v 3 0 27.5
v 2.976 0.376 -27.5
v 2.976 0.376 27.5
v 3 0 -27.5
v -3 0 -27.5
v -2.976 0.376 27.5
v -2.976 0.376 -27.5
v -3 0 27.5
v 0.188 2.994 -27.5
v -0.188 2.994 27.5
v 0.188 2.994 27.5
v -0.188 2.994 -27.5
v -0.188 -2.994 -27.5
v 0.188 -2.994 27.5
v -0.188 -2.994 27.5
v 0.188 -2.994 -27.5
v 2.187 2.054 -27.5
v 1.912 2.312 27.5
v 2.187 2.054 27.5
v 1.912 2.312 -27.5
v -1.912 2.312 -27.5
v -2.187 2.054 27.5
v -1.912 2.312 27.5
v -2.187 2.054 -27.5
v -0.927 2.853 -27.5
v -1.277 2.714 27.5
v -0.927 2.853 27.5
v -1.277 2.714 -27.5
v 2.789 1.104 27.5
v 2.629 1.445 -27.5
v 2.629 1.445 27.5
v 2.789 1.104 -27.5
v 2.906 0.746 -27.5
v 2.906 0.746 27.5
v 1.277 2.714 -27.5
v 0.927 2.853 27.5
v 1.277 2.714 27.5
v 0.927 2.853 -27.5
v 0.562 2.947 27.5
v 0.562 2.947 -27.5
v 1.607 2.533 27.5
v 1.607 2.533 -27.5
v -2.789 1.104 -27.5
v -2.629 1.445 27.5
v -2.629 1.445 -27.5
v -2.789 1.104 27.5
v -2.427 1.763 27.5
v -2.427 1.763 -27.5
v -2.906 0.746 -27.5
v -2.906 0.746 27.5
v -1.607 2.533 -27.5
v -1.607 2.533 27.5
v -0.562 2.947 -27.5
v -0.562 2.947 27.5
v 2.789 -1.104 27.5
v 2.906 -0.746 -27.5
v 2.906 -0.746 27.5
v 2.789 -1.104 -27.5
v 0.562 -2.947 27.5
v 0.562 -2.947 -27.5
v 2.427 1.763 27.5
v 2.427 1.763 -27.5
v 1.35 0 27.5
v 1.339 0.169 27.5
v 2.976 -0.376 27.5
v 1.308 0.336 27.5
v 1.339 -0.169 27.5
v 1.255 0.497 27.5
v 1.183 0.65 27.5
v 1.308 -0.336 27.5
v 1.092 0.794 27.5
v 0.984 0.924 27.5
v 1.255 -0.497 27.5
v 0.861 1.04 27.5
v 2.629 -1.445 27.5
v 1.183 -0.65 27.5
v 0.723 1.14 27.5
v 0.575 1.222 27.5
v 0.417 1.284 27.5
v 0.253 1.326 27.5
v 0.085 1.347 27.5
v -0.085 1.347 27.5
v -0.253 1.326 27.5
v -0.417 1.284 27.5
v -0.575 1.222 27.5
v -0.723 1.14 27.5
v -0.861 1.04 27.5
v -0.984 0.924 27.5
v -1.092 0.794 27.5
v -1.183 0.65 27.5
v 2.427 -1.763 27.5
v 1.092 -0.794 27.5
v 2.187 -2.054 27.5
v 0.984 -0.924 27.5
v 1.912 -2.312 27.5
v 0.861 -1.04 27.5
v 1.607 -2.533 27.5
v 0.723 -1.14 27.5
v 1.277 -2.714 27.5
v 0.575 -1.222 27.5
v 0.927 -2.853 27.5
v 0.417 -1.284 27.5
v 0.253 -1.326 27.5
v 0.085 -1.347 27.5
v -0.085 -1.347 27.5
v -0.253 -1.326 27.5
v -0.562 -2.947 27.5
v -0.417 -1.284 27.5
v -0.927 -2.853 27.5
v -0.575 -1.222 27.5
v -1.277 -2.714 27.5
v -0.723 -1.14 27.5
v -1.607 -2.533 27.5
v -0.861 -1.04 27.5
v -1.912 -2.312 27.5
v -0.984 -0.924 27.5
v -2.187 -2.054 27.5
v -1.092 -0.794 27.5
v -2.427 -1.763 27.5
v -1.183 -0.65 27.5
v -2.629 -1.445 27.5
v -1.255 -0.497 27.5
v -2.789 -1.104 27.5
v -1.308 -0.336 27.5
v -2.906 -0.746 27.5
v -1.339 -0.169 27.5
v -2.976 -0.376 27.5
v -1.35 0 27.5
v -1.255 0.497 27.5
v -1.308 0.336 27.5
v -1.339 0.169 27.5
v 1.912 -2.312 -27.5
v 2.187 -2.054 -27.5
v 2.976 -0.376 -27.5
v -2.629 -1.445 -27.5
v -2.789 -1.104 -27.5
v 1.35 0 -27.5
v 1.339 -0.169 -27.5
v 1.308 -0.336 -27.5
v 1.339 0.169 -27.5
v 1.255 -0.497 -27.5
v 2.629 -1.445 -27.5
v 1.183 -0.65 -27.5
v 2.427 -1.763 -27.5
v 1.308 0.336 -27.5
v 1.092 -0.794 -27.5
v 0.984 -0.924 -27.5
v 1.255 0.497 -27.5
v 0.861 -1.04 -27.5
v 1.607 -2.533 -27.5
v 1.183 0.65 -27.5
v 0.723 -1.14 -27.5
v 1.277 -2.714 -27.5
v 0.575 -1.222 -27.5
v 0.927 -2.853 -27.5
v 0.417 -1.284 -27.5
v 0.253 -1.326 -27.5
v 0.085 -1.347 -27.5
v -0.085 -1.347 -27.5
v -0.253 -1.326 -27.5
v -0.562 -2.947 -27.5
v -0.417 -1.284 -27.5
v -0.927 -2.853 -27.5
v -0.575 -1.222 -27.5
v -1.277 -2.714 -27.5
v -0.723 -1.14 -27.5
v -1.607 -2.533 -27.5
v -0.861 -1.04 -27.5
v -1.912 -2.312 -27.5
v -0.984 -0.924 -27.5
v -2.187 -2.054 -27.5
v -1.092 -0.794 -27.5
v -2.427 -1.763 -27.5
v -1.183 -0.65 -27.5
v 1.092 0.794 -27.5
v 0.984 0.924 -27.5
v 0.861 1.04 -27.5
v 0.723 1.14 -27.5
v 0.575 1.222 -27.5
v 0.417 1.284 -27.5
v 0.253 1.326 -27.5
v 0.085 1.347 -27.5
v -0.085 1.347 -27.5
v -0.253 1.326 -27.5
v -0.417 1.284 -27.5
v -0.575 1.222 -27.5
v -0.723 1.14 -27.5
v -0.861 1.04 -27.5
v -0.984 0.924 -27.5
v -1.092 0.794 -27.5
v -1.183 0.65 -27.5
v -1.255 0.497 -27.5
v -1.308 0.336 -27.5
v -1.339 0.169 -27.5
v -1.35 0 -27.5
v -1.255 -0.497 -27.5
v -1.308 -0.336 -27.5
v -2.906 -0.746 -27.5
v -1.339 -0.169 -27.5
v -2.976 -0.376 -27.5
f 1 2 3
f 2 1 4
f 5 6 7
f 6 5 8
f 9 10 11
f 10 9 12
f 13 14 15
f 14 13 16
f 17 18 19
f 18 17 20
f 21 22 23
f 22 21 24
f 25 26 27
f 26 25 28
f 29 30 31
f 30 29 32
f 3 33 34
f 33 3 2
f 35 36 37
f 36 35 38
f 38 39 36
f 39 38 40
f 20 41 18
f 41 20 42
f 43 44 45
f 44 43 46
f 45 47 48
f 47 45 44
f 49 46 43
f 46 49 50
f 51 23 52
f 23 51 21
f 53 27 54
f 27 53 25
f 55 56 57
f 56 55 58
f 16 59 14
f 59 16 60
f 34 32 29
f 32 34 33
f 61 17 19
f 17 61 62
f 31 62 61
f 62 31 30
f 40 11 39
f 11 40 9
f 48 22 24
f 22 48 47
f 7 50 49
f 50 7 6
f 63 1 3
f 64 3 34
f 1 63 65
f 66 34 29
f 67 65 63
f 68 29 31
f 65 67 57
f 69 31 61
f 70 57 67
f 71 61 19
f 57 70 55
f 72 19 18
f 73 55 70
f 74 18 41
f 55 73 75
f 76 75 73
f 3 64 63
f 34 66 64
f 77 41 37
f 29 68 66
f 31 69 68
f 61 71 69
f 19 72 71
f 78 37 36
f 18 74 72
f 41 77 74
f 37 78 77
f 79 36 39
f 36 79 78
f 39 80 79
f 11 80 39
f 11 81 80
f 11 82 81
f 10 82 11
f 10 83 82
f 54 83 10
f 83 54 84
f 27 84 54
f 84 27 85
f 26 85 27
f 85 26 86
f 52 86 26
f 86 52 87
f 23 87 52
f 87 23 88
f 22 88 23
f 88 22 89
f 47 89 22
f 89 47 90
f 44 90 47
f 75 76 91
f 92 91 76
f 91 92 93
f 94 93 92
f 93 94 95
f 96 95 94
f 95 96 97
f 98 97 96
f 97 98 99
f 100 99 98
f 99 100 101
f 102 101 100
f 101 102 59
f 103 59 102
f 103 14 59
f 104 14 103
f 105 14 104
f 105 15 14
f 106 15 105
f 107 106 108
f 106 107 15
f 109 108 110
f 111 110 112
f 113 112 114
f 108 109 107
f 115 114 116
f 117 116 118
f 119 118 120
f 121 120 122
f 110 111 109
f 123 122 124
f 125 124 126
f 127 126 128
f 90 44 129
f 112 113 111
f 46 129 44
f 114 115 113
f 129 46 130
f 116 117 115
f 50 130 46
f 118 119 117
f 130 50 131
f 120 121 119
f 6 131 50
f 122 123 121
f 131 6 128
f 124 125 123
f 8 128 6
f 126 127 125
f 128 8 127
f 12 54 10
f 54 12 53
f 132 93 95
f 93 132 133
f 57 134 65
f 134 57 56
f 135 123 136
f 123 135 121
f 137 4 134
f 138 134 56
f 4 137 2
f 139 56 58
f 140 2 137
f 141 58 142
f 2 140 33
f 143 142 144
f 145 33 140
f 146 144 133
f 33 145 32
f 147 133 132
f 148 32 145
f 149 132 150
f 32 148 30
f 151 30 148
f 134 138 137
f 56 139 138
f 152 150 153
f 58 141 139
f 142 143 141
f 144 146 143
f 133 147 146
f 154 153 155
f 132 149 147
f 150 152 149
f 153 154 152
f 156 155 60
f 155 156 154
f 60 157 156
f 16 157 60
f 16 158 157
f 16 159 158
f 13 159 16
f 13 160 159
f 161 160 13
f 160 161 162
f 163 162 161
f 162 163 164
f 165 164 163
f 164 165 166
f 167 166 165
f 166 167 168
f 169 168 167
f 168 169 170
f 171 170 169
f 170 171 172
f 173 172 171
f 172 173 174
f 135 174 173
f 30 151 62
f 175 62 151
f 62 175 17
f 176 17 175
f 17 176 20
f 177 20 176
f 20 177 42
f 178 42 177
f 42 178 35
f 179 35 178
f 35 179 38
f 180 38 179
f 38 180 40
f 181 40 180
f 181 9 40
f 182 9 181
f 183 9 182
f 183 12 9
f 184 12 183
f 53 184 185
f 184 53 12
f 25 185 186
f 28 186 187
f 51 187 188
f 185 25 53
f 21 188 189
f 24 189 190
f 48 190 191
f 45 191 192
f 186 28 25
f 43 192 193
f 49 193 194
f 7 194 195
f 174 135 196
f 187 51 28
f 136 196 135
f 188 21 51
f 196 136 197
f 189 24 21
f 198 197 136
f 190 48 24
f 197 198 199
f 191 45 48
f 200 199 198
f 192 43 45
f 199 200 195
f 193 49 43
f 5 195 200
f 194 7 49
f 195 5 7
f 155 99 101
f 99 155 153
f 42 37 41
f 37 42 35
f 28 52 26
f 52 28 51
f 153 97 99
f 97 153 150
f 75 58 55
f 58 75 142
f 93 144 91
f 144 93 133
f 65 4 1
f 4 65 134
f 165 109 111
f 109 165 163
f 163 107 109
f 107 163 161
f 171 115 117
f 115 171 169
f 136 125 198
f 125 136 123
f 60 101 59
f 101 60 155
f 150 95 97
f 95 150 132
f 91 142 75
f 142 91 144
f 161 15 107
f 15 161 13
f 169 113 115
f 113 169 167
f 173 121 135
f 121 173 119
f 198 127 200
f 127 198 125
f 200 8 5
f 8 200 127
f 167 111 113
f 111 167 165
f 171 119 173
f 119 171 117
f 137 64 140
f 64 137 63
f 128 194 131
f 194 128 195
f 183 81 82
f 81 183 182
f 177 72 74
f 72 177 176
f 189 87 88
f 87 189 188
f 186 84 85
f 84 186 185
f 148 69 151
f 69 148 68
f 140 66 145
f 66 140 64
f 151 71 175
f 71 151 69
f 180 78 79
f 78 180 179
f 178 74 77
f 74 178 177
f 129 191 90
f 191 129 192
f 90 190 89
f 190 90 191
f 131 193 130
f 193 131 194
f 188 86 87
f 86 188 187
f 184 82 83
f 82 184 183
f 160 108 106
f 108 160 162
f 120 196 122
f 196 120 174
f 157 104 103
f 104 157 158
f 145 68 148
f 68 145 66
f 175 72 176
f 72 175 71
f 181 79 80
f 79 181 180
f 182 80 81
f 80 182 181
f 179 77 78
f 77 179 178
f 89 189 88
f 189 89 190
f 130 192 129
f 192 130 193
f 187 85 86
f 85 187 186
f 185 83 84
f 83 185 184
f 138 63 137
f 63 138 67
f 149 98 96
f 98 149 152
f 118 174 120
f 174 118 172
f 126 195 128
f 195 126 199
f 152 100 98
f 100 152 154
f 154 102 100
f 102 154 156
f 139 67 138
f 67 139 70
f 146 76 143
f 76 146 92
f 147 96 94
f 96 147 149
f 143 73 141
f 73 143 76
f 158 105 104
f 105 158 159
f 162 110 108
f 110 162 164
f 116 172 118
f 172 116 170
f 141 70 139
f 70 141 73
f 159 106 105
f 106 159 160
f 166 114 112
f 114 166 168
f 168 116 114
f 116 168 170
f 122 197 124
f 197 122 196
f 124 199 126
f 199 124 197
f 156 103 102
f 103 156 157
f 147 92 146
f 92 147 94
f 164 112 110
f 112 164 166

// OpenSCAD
$fn = 50;


difference() {
	union() {
		translate(v = [0, 0, -27.5000000000]) {
			cylinder(h = 55, r = 3.0000000000);
		}
	}
	union() {
		translate(v = [0, 0, -100.0000000000]) {
			cylinder(h = 200, r = 1.3500000000);
		}
	}
}
